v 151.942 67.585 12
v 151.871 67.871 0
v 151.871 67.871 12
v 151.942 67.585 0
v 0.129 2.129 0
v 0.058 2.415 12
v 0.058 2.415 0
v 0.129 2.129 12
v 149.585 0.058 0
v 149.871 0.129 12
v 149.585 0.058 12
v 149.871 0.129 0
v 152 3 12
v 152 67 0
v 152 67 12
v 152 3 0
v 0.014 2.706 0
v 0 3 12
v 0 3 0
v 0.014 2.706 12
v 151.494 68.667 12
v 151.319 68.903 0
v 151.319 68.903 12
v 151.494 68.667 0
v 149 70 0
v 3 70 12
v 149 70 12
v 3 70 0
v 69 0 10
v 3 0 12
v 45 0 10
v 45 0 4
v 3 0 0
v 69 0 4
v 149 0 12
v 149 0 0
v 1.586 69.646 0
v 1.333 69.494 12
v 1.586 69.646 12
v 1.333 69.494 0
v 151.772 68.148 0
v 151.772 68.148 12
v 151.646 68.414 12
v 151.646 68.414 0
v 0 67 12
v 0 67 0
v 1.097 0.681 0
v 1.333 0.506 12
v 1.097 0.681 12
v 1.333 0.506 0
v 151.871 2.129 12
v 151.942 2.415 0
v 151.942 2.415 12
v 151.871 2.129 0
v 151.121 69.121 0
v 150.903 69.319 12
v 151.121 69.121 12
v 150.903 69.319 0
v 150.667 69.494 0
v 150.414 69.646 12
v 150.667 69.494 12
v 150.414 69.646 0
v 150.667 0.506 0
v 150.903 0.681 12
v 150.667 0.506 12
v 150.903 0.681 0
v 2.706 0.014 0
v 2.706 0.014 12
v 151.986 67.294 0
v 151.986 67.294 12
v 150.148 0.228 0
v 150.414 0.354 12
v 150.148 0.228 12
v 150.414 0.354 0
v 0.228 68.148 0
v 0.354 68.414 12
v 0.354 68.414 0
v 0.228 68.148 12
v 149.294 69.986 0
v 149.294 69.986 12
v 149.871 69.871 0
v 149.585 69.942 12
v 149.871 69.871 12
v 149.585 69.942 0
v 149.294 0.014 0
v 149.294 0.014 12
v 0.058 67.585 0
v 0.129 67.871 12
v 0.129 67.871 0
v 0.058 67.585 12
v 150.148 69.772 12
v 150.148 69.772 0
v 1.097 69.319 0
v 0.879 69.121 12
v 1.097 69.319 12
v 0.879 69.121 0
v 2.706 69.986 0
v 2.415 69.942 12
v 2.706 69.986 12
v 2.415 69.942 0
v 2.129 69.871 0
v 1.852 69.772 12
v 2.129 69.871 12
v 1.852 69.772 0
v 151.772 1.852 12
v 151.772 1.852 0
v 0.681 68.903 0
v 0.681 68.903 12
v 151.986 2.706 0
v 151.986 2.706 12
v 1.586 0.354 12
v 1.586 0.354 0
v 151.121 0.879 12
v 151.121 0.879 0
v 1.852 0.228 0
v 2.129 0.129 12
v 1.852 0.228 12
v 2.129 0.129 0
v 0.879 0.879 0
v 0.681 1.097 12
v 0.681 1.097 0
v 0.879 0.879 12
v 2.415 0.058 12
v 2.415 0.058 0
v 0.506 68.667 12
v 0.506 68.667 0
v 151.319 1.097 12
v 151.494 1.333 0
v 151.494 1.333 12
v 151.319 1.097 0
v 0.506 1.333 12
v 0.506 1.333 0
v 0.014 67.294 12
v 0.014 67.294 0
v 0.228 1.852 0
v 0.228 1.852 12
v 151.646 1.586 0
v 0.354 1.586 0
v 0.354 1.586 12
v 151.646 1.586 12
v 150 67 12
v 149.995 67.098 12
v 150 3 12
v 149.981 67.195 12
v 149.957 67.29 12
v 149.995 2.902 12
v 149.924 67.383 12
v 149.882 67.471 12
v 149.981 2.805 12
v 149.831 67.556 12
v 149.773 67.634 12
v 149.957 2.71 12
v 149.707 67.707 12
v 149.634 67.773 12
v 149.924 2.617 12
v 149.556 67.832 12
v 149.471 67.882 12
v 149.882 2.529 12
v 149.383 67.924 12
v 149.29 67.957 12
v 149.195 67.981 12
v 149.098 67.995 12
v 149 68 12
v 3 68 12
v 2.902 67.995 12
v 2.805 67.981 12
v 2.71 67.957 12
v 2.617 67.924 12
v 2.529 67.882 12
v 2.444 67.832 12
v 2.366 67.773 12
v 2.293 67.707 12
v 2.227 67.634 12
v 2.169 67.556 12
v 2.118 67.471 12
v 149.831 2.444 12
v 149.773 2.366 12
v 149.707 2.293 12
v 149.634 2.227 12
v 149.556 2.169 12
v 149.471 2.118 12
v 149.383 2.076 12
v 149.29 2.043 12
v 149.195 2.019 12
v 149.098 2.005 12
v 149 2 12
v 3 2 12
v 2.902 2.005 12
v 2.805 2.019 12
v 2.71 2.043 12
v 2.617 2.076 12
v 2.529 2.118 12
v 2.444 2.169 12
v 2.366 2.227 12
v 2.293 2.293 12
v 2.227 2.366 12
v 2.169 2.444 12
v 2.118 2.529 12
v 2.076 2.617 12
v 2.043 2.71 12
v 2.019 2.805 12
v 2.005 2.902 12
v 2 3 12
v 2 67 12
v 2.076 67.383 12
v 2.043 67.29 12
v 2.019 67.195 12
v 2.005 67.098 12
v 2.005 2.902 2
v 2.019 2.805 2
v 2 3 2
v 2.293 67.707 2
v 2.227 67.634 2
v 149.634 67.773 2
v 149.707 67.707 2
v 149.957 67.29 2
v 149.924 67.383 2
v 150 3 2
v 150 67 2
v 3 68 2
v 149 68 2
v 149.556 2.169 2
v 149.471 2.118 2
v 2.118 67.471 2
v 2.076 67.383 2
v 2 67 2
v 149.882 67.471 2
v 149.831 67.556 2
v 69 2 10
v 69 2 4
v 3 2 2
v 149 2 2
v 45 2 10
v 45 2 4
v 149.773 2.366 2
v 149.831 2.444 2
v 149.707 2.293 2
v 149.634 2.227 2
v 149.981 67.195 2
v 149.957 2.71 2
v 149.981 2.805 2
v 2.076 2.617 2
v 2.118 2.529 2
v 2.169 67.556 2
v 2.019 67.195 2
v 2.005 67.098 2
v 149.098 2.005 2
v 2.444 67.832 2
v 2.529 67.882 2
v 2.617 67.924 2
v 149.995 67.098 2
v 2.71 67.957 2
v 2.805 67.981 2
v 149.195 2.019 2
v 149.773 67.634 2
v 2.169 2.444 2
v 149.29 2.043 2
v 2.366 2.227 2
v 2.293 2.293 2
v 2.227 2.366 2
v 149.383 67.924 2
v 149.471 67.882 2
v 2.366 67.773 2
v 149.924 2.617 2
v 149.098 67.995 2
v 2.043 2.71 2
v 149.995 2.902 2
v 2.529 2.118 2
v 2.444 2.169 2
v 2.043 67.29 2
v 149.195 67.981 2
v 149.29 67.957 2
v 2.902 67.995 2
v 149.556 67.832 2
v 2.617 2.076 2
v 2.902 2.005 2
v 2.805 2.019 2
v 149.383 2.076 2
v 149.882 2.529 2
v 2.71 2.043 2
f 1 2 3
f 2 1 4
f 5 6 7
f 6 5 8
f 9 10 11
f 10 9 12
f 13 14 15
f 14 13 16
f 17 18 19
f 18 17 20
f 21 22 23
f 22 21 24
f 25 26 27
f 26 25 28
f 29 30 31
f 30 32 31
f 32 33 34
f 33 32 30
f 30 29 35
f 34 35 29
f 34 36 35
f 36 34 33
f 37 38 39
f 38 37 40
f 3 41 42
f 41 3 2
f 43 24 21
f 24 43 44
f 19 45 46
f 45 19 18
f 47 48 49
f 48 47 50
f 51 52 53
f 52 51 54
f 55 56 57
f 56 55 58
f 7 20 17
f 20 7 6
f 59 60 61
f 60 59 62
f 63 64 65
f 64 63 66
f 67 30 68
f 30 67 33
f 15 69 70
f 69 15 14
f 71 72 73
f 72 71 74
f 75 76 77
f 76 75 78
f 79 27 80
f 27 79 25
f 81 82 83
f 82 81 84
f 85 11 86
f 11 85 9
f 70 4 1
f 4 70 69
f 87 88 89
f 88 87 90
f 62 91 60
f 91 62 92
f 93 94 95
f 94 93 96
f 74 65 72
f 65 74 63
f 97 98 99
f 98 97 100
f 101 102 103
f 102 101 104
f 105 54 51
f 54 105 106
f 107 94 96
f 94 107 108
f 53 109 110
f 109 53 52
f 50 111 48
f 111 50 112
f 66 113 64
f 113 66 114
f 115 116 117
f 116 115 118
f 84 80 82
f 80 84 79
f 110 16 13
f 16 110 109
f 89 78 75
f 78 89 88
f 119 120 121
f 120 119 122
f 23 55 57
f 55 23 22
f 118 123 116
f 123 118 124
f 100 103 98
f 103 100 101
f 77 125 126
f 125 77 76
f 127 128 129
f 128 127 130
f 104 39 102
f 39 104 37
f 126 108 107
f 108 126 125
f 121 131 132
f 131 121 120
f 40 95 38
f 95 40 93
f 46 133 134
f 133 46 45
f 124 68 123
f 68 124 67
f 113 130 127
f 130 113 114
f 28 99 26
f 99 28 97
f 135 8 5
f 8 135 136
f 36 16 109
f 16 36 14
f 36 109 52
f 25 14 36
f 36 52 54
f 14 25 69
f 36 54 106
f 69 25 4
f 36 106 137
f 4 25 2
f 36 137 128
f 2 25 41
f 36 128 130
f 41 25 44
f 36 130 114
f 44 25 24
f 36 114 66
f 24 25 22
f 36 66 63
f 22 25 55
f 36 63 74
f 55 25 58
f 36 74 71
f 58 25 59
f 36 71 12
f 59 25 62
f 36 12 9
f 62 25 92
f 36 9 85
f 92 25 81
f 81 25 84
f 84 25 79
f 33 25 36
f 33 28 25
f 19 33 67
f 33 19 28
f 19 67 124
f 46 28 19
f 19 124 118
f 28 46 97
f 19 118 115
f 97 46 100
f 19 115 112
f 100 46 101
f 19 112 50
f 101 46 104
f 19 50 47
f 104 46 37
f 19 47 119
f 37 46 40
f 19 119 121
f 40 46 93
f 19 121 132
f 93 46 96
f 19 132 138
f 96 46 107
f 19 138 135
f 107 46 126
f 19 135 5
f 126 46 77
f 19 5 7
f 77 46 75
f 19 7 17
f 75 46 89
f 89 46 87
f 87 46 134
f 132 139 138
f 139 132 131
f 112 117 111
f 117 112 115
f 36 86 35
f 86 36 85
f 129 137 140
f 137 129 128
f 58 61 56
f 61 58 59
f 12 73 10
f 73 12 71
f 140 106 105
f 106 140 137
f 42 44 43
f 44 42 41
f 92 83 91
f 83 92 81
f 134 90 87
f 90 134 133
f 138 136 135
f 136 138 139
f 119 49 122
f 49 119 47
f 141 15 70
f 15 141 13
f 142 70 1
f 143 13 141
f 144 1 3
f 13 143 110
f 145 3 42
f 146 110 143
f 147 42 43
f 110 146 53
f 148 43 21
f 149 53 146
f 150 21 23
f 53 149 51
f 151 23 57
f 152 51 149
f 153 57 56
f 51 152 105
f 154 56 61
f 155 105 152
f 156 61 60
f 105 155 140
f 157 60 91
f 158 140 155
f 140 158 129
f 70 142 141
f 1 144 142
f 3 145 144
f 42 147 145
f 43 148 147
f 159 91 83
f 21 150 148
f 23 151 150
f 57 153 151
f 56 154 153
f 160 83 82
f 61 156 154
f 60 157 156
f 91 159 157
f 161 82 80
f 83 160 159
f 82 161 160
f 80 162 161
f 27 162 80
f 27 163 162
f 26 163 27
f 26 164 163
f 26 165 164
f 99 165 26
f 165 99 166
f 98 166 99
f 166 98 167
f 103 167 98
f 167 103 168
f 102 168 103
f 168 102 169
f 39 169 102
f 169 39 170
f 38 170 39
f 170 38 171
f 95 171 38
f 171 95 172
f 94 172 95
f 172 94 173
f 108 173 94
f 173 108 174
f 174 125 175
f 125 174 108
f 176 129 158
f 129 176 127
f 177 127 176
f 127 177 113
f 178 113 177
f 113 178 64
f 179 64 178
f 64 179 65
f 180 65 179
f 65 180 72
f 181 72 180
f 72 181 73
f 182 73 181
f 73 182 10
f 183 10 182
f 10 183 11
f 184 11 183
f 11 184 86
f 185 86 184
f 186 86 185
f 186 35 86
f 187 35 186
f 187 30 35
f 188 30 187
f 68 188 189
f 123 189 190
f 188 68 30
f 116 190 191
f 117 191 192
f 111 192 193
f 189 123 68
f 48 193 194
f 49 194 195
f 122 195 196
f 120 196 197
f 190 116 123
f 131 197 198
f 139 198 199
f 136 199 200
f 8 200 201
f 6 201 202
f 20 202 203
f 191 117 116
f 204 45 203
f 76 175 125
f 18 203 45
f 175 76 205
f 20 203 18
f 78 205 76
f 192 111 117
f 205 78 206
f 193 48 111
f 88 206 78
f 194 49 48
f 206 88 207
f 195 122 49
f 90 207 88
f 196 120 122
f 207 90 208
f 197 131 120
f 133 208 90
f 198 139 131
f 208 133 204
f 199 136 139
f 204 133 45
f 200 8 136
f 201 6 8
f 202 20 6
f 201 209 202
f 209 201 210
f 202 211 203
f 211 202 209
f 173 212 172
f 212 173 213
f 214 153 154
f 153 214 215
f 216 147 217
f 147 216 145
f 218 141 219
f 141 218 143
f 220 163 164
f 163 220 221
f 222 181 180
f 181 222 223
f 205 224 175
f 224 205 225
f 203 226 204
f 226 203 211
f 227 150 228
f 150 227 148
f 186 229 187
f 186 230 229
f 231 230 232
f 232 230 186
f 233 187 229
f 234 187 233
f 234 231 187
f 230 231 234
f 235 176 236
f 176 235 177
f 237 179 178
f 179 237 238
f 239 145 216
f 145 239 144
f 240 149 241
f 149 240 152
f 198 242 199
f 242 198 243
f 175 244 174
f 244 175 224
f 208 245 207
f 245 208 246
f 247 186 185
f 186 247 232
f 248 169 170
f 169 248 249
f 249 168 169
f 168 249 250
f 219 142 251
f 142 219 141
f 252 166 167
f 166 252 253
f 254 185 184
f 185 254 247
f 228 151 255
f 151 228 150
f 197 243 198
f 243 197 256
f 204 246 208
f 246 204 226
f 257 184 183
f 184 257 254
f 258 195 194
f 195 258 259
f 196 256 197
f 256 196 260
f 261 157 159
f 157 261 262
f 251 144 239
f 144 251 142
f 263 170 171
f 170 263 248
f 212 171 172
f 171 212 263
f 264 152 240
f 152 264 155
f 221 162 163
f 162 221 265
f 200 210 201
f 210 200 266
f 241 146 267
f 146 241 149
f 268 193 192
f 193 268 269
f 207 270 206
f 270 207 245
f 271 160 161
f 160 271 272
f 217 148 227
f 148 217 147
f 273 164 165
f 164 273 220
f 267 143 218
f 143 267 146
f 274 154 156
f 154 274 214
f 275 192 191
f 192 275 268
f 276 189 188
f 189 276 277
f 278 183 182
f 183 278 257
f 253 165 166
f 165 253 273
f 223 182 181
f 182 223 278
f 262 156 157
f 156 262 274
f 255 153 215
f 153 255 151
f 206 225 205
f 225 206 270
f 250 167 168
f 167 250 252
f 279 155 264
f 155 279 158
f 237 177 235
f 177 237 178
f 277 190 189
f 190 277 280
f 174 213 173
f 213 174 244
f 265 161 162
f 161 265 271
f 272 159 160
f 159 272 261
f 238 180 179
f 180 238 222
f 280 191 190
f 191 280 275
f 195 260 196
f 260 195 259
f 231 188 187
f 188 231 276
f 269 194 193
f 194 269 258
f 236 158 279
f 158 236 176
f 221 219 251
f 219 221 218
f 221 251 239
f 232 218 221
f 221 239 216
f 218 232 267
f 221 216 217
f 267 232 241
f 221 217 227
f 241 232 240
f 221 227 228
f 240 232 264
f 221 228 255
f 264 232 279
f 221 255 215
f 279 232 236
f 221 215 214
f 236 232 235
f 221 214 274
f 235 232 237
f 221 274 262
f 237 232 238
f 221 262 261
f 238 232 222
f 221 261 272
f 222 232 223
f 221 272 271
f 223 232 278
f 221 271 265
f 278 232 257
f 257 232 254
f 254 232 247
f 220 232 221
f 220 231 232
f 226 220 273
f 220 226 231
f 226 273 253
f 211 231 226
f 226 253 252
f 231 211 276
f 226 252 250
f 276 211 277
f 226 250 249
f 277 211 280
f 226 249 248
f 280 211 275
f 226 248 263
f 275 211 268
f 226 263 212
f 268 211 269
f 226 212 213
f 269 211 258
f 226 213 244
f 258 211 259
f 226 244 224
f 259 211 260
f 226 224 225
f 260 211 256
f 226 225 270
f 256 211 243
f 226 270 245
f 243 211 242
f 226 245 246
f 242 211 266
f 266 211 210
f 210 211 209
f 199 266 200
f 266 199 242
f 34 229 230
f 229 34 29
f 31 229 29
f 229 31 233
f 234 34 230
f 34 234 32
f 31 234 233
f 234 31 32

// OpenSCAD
// =============================================================================
// pizero-retro — Bottom Shell
// =============================================================================
// Pure parametric OpenSCAD — no STL dependency.
//
// Printing orientation : back face DOWN  (Z = 0 is the outer back face).
//                        Parting face at Z = bottom_depth, open toward top shell.
//
// Coordinate system (X, Y across the case outer footprint):
//   X :   0 → 152 mm   (case width,  left → right)
//   Y :   0 →  70 mm   (case height, bottom edge → top edge)
//   Z :   0 →  12 mm   (shell depth, outer back face → parting face)
//
// The back face grows 3 mm beyond the PCB edge on all four sides (expand = 3),
// matching the Top shell. Side walls remain 2 mm thick around the full
// expanded footprint; the 3 mm overhang exists only on the back face.
//
// USB port cutout (24 mm wide × 6 mm tall) in the bottom edge wall (Y = 0):
//   X :  45 →  69 mm   (shifted 4 mm left of original PCB-relative position)
//   Z :   4 →  10 mm   (adjust usb_z_start / usb_z_height if needed)
//
// No screw holes — drill to suit after printing.
// =============================================================================

// ── Smoothness ────────────────────────────────────────────────────────────────
$fn = 64;

// ── Tolerance ─────────────────────────────────────────────────────────────────
eps = 0.1;   // small overlap to avoid coincident-face artefacts

// ── PCB dimensions ────────────────────────────────────────────────────────────
pcb_w = 142;   // mm wide
pcb_h = 60;    // mm tall

// ── Case geometry ─────────────────────────────────────────────────────────────
wall         = 2;                          // back face & side wall thickness (mm)
expand       = 3;                          // extra back-face material beyond PCB on each side
corner_r     = 3;                          // outer corner radius (mm)
inner_r      = max(0, corner_r - wall);    // inner corner radius → 1 mm

case_w       = pcb_w + 2 * wall + 2 * expand;   // 152 mm
case_h       = pcb_h + 2 * wall + 2 * expand;   // 70 mm
bottom_depth = 12;                              // total bottom shell depth (mm)

// ── USB port cutout parameters ────────────────────────────────────────────────
// Rectangular slot through the bottom edge wall (Y = 0 → Y = wall).
// Adjust usb_z_start and usb_z_height to align with your Pi Zero USB ports.
//
// PCB-relative X (expand offset applied in main model). Originally 46 mm in the
// old un-expanded outer coordinate system; shifted 4 mm left → 42 mm PCB-rel
// → outer X = 45 mm after the [expand, …] translate.

usb_x_start  = 42;   // mm from PCB left (outer X = 45 after expand)
usb_w        = 24;   // mm wide  (spans both Pi Zero USB ports)
usb_z_start  = 4;    // mm above the outer back face floor
usb_z_height = 6;    // mm tall  (6 mm suits standard micro-USB connectors)

// ── Helpers ───────────────────────────────────────────────────────────────────

// Solid rounded-rectangle prism
module rounded_box(w, h, d, r) {
    linear_extrude(d)
        hull() {
            translate([r, r])         circle(r = r);
            translate([w - r, r])     circle(r = r);
            translate([r, h - r])     circle(r = r);
            translate([w - r, h - r]) circle(r = r);
        }
}

// ── Main model ────────────────────────────────────────────────────────────────

difference() {

    // 1. Outer shell — expanded footprint (matches Top)
    rounded_box(case_w, case_h, bottom_depth, corner_r);

    // 2. Inner cavity — side walls are exactly `wall` (2 mm) thick around the
    //    full expanded footprint. The back face (Z = 0 → wall) covers the full
    //    152 × 70 mm, so the 3 mm `expand` overhang exists only on the back face.
    translate([wall, wall, wall])
        rounded_box(case_w - 2 * wall,
                    case_h - 2 * wall,
                    bottom_depth - wall + eps,
                    inner_r);

    // 3. USB port cutout — slot through the bottom edge wall (Y = 0).
    //    Wrapped in [expand, expand, 0] so X is PCB-relative; Y still cuts
    //    through the outer wall starting at Y = 0.
    translate([expand + usb_x_start, -eps, usb_z_start])
        cube([usb_w, wall + 2 * eps, usb_z_height]);
}
